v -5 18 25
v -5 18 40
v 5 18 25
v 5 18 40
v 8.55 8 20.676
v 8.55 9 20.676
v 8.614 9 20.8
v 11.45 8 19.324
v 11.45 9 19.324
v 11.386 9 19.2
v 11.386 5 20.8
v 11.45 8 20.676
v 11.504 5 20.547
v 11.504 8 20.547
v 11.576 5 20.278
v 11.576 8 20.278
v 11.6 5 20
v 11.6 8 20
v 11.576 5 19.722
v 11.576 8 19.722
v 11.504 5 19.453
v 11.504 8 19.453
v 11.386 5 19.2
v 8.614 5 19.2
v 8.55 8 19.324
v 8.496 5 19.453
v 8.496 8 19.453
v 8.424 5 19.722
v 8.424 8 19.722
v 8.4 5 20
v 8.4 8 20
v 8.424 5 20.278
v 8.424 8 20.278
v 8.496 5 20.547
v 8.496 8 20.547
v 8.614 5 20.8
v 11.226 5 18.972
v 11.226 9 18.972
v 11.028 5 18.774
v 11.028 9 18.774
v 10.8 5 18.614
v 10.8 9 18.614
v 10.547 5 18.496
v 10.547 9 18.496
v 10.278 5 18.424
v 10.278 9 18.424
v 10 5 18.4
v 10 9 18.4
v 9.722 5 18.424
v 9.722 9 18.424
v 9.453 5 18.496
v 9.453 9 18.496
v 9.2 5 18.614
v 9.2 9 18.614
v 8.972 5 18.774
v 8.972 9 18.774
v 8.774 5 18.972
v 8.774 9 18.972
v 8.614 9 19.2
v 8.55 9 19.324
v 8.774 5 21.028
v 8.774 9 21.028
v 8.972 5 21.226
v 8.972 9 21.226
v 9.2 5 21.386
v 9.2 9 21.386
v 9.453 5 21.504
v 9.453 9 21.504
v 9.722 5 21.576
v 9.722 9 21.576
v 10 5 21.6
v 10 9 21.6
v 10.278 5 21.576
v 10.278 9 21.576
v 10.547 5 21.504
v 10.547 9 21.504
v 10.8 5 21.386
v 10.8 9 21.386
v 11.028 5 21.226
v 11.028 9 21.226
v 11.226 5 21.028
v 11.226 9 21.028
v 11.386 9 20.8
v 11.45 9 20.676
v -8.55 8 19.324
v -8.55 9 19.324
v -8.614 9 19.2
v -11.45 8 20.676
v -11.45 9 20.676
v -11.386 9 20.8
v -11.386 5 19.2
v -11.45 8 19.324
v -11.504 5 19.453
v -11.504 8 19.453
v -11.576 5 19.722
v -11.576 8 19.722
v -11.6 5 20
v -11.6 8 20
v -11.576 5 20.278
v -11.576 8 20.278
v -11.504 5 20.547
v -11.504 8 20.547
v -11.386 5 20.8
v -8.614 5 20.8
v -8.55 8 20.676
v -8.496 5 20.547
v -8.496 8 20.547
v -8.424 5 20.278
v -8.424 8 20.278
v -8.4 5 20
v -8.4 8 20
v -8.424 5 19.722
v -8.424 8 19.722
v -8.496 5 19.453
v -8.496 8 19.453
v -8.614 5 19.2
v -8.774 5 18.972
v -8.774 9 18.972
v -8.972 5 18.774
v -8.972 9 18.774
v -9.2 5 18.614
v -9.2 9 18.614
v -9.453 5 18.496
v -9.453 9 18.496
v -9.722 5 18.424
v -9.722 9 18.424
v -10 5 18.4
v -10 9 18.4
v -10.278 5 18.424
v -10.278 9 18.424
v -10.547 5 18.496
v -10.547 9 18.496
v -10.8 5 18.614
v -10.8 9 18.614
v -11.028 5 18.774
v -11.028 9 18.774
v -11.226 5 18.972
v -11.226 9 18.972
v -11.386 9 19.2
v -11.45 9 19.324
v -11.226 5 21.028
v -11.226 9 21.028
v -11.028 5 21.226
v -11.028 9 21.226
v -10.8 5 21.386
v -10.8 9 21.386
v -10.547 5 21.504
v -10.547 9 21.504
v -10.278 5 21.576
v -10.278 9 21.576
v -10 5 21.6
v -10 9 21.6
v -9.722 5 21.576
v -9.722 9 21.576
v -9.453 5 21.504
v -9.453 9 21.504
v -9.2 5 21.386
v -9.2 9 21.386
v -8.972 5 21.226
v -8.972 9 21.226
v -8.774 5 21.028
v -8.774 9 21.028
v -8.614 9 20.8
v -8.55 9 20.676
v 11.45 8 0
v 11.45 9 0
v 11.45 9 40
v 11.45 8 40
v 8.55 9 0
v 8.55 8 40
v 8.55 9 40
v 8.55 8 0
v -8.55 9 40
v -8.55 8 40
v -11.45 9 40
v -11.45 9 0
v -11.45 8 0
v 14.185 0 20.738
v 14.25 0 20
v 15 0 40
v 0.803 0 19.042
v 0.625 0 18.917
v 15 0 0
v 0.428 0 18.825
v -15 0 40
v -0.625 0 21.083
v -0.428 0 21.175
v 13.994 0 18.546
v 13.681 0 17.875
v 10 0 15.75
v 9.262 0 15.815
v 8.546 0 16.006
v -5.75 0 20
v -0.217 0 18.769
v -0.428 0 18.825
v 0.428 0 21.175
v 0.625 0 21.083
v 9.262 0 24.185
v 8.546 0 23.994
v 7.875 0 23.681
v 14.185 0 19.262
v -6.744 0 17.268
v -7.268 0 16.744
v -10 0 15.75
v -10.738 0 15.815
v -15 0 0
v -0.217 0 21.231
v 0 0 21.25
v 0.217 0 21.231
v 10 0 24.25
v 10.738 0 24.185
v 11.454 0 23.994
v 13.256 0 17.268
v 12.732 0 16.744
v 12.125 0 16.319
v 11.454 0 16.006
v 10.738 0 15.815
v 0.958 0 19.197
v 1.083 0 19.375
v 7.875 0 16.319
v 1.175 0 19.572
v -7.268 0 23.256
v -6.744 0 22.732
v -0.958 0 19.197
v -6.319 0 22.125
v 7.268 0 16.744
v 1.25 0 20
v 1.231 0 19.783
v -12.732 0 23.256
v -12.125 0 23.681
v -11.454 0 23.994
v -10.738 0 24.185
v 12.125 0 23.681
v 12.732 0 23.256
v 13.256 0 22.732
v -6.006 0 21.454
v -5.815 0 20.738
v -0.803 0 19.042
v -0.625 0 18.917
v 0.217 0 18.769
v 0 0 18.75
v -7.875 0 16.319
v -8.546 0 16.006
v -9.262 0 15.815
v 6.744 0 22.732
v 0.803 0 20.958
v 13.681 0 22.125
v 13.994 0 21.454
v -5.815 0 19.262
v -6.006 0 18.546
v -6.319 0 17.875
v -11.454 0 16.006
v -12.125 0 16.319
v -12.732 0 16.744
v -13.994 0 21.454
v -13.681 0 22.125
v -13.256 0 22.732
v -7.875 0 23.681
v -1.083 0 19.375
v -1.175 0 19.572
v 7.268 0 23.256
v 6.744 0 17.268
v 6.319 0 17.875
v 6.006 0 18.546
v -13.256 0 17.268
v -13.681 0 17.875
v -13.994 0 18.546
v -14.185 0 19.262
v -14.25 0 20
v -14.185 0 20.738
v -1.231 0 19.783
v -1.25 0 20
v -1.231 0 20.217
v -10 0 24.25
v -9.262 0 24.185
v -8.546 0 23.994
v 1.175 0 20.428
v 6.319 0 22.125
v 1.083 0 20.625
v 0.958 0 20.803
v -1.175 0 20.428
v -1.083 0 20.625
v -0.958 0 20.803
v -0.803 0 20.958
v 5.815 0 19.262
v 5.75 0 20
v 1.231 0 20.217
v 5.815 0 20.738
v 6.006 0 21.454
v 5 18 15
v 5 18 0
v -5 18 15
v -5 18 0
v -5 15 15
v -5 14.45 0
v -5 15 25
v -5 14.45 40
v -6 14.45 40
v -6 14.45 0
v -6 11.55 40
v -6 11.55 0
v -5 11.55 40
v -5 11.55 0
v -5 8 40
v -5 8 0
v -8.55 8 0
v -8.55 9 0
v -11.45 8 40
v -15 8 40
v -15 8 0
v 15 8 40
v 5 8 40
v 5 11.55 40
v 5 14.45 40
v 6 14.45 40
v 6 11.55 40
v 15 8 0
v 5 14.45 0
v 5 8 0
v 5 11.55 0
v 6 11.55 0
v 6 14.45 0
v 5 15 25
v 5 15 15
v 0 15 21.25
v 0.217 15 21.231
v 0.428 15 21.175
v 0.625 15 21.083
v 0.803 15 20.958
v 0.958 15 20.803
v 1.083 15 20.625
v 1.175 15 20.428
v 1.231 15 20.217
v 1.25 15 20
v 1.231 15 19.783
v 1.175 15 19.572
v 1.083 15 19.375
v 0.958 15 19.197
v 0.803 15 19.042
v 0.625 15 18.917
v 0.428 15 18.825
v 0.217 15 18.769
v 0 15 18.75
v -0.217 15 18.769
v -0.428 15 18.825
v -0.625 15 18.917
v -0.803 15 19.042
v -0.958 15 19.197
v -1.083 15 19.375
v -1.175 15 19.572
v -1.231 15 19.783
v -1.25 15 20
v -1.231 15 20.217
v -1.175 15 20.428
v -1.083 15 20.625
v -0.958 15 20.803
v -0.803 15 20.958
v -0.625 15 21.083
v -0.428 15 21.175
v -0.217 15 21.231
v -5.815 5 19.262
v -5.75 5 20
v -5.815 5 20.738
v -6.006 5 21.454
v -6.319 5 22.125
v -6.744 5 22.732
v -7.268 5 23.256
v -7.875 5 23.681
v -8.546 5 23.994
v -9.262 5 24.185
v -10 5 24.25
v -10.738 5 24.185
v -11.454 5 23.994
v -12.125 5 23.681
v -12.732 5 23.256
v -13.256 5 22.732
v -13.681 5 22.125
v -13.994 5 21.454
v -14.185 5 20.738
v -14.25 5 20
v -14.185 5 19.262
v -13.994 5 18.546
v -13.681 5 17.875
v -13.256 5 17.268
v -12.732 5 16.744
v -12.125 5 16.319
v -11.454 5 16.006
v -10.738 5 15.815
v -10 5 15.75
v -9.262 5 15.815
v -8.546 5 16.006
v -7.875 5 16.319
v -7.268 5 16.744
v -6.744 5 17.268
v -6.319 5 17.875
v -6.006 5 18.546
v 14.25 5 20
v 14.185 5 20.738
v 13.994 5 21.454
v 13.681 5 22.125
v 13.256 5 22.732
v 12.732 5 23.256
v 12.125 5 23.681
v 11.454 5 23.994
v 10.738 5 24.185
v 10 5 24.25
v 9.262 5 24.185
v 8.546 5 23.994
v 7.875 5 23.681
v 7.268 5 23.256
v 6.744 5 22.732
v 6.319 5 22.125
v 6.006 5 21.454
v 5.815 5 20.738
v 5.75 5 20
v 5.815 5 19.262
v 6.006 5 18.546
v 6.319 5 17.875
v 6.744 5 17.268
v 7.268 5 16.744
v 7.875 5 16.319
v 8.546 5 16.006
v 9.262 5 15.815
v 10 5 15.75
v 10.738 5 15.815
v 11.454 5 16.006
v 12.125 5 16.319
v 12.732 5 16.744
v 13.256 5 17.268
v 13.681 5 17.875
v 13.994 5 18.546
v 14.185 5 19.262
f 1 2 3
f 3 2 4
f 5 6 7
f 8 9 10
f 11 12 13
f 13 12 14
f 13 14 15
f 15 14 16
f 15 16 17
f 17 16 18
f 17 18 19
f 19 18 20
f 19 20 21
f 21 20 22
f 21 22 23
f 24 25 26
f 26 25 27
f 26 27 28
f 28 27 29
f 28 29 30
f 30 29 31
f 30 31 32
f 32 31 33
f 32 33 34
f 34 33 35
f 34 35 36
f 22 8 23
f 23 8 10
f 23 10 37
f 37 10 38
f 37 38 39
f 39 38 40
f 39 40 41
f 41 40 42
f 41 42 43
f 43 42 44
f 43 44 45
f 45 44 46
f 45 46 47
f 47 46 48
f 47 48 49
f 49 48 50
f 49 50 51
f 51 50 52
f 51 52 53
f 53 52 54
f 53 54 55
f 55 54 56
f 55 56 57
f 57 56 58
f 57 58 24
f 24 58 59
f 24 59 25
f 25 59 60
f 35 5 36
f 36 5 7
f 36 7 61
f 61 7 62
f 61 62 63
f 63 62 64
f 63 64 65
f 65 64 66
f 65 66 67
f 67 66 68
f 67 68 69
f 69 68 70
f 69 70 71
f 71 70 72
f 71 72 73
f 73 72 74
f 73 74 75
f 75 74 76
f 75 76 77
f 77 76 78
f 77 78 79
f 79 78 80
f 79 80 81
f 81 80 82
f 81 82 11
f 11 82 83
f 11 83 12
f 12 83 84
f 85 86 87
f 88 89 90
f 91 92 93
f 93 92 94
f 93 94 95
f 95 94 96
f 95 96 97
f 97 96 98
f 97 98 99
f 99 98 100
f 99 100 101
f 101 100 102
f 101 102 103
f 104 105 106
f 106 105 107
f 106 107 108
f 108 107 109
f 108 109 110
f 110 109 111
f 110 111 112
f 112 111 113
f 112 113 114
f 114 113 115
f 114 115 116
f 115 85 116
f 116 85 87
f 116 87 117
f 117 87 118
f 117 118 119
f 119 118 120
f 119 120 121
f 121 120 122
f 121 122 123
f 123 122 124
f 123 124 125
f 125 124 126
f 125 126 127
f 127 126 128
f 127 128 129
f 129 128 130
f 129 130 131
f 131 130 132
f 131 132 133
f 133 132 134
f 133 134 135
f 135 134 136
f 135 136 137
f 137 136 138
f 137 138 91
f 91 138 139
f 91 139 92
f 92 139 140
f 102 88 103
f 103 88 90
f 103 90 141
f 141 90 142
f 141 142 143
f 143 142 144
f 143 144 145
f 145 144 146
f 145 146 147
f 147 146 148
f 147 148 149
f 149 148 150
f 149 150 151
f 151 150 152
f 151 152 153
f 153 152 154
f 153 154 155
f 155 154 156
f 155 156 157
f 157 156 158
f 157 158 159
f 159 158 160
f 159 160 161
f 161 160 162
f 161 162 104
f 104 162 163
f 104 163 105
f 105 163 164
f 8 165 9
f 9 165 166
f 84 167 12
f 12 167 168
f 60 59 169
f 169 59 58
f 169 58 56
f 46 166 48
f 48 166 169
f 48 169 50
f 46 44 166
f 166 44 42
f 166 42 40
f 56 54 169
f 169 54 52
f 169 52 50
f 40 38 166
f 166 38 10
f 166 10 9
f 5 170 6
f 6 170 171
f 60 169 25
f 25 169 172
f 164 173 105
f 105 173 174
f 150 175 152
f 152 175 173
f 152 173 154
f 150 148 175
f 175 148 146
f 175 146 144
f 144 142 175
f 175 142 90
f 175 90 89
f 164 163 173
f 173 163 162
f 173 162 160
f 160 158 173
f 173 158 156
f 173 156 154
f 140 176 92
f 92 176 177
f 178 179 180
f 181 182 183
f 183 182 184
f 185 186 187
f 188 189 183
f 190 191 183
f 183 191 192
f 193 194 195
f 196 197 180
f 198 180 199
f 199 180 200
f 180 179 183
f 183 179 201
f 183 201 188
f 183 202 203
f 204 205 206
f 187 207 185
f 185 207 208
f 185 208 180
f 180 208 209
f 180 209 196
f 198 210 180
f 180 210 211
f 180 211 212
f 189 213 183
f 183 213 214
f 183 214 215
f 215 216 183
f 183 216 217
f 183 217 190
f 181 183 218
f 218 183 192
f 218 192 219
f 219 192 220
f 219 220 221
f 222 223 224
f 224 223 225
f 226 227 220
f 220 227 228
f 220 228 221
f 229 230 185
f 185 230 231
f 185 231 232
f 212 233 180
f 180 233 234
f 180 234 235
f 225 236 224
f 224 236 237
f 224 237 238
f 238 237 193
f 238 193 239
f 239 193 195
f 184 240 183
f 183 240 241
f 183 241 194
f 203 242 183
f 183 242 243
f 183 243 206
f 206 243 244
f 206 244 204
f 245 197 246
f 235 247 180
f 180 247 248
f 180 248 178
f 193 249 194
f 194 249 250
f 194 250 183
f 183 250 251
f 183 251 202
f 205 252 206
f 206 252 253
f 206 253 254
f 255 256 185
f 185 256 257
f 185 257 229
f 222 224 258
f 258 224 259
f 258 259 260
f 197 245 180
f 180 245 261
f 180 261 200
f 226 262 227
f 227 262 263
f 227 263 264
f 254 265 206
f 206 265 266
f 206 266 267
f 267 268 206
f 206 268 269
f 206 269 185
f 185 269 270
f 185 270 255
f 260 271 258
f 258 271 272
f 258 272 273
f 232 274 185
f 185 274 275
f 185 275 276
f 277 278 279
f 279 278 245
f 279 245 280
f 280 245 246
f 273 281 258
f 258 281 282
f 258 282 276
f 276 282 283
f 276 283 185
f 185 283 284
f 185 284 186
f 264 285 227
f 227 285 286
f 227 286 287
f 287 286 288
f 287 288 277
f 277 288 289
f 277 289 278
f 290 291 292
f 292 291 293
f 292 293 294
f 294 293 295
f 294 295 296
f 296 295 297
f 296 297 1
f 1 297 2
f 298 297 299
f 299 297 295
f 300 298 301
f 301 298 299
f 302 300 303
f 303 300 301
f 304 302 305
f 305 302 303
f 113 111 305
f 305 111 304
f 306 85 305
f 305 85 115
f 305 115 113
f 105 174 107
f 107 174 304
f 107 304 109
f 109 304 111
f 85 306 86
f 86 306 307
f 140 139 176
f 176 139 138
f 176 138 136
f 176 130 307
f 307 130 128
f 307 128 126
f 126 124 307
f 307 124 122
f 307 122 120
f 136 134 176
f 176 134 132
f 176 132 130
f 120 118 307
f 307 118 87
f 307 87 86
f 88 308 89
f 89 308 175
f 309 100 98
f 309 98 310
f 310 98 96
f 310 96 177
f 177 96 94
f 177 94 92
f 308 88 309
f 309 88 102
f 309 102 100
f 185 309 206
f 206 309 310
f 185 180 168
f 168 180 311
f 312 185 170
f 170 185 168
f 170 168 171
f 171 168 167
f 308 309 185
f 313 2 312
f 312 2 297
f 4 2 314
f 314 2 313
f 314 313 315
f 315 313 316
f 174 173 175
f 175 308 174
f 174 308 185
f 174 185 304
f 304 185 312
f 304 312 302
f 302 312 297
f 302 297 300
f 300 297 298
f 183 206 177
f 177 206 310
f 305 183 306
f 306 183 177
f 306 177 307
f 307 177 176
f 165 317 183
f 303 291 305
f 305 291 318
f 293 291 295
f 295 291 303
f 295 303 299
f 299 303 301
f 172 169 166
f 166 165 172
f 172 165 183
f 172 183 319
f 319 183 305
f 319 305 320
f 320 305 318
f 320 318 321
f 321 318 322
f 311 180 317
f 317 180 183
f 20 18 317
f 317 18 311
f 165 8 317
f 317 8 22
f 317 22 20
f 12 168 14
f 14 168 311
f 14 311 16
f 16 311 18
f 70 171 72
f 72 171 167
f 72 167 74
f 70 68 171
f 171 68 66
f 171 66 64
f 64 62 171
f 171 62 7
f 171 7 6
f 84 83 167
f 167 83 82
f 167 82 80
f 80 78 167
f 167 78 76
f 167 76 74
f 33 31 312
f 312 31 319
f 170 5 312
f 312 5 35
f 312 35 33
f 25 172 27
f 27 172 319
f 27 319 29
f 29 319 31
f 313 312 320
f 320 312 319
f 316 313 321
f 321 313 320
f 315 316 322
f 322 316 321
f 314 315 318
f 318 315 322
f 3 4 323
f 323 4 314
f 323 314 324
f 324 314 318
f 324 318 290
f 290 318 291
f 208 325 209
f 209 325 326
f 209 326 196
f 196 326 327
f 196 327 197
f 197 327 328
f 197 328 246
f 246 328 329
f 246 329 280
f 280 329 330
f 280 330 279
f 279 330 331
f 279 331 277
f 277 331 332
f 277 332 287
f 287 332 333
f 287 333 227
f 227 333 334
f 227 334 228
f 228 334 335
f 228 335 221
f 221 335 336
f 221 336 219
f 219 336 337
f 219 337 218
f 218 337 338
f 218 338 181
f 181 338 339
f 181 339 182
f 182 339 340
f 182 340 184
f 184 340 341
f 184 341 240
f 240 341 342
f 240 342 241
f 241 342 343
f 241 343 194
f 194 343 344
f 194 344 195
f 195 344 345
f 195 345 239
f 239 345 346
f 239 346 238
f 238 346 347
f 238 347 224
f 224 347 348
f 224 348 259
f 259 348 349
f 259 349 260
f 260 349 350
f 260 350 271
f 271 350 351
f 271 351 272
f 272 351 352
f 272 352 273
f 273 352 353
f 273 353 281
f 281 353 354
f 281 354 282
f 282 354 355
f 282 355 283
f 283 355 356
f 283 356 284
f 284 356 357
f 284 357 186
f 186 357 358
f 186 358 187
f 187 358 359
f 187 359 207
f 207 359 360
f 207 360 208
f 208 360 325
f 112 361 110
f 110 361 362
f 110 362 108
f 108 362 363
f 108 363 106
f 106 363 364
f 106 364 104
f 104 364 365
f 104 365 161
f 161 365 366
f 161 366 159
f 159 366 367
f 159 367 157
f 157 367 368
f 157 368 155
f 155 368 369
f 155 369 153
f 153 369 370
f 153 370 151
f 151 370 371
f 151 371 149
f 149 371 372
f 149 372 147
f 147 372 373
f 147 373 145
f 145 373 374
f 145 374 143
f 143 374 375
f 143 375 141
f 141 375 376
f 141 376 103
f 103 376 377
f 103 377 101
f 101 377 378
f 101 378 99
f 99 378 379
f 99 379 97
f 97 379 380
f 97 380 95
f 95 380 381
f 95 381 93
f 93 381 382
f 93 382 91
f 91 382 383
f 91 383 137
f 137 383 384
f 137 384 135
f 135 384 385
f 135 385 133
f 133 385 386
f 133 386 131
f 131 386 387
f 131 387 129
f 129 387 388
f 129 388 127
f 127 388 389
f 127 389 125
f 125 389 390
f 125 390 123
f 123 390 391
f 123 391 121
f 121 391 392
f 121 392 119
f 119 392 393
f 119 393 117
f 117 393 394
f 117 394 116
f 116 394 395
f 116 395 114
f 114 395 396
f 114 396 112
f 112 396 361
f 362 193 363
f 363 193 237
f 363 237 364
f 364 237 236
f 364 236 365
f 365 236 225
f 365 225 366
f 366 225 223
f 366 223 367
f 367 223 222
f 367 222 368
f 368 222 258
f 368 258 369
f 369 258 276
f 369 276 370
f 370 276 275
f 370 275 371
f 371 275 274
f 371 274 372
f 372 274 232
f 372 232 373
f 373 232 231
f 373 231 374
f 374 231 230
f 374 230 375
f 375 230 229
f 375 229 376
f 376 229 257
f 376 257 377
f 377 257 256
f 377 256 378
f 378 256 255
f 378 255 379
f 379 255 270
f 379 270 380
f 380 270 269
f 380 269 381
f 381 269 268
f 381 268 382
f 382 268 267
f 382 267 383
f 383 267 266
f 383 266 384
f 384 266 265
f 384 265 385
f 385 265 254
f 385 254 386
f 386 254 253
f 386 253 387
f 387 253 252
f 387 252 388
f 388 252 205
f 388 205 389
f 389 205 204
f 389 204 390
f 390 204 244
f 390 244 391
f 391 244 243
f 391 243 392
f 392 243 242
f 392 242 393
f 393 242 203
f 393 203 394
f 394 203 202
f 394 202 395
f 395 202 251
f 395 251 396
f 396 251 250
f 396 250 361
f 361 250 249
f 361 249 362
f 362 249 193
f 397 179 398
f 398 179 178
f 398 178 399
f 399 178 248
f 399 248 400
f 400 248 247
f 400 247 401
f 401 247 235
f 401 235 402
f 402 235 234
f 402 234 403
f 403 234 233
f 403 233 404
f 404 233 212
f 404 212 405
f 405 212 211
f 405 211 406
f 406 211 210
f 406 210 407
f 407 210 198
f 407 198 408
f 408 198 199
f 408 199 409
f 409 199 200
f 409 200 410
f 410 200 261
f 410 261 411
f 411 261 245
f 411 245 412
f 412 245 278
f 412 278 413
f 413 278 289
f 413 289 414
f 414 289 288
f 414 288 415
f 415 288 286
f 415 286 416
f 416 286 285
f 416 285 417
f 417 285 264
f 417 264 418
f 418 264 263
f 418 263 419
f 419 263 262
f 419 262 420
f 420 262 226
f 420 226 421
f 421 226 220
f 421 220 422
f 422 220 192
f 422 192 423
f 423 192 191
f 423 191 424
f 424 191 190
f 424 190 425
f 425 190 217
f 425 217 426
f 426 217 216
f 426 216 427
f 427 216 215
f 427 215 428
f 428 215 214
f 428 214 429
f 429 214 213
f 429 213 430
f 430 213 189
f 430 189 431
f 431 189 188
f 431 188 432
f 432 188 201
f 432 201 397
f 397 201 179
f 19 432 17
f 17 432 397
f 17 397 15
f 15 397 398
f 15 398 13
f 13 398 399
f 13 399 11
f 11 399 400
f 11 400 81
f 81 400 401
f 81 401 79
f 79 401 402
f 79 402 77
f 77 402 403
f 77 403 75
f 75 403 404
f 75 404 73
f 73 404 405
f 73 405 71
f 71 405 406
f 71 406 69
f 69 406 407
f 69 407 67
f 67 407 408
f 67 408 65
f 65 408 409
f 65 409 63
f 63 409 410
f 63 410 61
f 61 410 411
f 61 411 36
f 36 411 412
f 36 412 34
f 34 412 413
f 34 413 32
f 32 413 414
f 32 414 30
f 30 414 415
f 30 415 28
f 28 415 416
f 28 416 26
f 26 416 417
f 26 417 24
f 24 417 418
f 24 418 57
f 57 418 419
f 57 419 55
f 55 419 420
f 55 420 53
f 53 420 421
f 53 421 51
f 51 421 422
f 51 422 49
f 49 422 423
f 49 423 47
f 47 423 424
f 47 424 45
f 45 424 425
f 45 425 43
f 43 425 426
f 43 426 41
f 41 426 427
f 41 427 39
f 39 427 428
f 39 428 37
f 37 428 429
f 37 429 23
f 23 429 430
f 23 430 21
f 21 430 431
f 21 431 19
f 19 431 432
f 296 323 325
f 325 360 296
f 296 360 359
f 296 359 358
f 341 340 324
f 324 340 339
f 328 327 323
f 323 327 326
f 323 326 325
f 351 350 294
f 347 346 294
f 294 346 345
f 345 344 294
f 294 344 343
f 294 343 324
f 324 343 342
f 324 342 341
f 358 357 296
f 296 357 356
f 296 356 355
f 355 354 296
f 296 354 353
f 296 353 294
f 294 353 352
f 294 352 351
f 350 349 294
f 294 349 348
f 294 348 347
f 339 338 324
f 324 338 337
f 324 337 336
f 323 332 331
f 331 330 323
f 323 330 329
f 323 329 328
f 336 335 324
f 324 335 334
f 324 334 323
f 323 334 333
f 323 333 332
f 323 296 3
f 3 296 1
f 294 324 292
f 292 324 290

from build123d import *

# Parameters (mm, degrees)
MAIN_DEPTH         = 40
ESQUISSE2_R        = 1.6
TOPHOLE_DEPTH      = 10
ESQUISSE3_R        = 1.25
CENTRALHOLE_DEPTH  = 19
SKETCH1_R          = 4.25
CUT_EXTRUDE1_DEPTH = 5
SKETCH2_W          = 10
SKETCH2_H          = 10
CUT_EXTRUDE2_DEPTH = 3


with BuildPart() as part:
    # Esquisse1 → Main (new body)
    with BuildSketch(Plane.XY):
        Polygon((-15, 0), (-15, 8), (-11.45, 8), (-11.45, 9), (-8.55, 9), (-8.55, 8), (-5, 8), (-5, 11.55), (-6, 11.55), (-6, 14.45), (-5, 14.45), (-5, 18), (0, 18), (0, 0), align=None)
    main = extrude(amount=MAIN_DEPTH)

    # Esquisse2 → TopHole (cut, through all)
    with BuildSketch(Plane(origin=(0, 9, 0), x_dir=(1, 0, 0), z_dir=(0, 1, 0))):
        with Locations((-10, -20)):
            Circle(ESQUISSE2_R)
    tophole = extrude(amount=-TOPHOLE_DEPTH, mode=Mode.SUBTRACT)

    # Symétrie1: Main, TopHole across plane
    add(main.mirror(Plane(origin=(0, 0, 0), x_dir=(0, 0, 1), z_dir=(1, 0, 0))))
    add(tophole.mirror(Plane(origin=(0, 0, 0), x_dir=(0, 0, 1), z_dir=(1, 0, 0))), mode=Mode.SUBTRACT)

    # Esquisse3 → CentralHole (cut, through all)
    with BuildSketch(Plane(origin=(0, 18, 0), x_dir=(1, 0, 0), z_dir=(0, 1, 0))):
        with Locations((0, -20)):
            Circle(ESQUISSE3_R)
    extrude(amount=-CENTRALHOLE_DEPTH, mode=Mode.SUBTRACT)

    # Sketch1 → Cut-Extrude1 (cut)
    with BuildSketch(Plane(origin=(0, 0, 0), x_dir=(-1, 0, 0), z_dir=(0, -1, 0))):
        with Locations((10, -20)):
            Circle(SKETCH1_R)
        with Locations((-10, -20)):
            Circle(SKETCH1_R)
    extrude(amount=-CUT_EXTRUDE1_DEPTH, mode=Mode.SUBTRACT)

    # Sketch2 → Cut-Extrude2 (cut)
    with BuildSketch(Plane(origin=(0, 18, 0), x_dir=(1, 0, 0), z_dir=(0, 1, 0))):
        with Locations((0, -20)):
            Rectangle(SKETCH2_W, SKETCH2_H)
    extrude(amount=-CUT_EXTRUDE2_DEPTH, mode=Mode.SUBTRACT)


solid = part.part
